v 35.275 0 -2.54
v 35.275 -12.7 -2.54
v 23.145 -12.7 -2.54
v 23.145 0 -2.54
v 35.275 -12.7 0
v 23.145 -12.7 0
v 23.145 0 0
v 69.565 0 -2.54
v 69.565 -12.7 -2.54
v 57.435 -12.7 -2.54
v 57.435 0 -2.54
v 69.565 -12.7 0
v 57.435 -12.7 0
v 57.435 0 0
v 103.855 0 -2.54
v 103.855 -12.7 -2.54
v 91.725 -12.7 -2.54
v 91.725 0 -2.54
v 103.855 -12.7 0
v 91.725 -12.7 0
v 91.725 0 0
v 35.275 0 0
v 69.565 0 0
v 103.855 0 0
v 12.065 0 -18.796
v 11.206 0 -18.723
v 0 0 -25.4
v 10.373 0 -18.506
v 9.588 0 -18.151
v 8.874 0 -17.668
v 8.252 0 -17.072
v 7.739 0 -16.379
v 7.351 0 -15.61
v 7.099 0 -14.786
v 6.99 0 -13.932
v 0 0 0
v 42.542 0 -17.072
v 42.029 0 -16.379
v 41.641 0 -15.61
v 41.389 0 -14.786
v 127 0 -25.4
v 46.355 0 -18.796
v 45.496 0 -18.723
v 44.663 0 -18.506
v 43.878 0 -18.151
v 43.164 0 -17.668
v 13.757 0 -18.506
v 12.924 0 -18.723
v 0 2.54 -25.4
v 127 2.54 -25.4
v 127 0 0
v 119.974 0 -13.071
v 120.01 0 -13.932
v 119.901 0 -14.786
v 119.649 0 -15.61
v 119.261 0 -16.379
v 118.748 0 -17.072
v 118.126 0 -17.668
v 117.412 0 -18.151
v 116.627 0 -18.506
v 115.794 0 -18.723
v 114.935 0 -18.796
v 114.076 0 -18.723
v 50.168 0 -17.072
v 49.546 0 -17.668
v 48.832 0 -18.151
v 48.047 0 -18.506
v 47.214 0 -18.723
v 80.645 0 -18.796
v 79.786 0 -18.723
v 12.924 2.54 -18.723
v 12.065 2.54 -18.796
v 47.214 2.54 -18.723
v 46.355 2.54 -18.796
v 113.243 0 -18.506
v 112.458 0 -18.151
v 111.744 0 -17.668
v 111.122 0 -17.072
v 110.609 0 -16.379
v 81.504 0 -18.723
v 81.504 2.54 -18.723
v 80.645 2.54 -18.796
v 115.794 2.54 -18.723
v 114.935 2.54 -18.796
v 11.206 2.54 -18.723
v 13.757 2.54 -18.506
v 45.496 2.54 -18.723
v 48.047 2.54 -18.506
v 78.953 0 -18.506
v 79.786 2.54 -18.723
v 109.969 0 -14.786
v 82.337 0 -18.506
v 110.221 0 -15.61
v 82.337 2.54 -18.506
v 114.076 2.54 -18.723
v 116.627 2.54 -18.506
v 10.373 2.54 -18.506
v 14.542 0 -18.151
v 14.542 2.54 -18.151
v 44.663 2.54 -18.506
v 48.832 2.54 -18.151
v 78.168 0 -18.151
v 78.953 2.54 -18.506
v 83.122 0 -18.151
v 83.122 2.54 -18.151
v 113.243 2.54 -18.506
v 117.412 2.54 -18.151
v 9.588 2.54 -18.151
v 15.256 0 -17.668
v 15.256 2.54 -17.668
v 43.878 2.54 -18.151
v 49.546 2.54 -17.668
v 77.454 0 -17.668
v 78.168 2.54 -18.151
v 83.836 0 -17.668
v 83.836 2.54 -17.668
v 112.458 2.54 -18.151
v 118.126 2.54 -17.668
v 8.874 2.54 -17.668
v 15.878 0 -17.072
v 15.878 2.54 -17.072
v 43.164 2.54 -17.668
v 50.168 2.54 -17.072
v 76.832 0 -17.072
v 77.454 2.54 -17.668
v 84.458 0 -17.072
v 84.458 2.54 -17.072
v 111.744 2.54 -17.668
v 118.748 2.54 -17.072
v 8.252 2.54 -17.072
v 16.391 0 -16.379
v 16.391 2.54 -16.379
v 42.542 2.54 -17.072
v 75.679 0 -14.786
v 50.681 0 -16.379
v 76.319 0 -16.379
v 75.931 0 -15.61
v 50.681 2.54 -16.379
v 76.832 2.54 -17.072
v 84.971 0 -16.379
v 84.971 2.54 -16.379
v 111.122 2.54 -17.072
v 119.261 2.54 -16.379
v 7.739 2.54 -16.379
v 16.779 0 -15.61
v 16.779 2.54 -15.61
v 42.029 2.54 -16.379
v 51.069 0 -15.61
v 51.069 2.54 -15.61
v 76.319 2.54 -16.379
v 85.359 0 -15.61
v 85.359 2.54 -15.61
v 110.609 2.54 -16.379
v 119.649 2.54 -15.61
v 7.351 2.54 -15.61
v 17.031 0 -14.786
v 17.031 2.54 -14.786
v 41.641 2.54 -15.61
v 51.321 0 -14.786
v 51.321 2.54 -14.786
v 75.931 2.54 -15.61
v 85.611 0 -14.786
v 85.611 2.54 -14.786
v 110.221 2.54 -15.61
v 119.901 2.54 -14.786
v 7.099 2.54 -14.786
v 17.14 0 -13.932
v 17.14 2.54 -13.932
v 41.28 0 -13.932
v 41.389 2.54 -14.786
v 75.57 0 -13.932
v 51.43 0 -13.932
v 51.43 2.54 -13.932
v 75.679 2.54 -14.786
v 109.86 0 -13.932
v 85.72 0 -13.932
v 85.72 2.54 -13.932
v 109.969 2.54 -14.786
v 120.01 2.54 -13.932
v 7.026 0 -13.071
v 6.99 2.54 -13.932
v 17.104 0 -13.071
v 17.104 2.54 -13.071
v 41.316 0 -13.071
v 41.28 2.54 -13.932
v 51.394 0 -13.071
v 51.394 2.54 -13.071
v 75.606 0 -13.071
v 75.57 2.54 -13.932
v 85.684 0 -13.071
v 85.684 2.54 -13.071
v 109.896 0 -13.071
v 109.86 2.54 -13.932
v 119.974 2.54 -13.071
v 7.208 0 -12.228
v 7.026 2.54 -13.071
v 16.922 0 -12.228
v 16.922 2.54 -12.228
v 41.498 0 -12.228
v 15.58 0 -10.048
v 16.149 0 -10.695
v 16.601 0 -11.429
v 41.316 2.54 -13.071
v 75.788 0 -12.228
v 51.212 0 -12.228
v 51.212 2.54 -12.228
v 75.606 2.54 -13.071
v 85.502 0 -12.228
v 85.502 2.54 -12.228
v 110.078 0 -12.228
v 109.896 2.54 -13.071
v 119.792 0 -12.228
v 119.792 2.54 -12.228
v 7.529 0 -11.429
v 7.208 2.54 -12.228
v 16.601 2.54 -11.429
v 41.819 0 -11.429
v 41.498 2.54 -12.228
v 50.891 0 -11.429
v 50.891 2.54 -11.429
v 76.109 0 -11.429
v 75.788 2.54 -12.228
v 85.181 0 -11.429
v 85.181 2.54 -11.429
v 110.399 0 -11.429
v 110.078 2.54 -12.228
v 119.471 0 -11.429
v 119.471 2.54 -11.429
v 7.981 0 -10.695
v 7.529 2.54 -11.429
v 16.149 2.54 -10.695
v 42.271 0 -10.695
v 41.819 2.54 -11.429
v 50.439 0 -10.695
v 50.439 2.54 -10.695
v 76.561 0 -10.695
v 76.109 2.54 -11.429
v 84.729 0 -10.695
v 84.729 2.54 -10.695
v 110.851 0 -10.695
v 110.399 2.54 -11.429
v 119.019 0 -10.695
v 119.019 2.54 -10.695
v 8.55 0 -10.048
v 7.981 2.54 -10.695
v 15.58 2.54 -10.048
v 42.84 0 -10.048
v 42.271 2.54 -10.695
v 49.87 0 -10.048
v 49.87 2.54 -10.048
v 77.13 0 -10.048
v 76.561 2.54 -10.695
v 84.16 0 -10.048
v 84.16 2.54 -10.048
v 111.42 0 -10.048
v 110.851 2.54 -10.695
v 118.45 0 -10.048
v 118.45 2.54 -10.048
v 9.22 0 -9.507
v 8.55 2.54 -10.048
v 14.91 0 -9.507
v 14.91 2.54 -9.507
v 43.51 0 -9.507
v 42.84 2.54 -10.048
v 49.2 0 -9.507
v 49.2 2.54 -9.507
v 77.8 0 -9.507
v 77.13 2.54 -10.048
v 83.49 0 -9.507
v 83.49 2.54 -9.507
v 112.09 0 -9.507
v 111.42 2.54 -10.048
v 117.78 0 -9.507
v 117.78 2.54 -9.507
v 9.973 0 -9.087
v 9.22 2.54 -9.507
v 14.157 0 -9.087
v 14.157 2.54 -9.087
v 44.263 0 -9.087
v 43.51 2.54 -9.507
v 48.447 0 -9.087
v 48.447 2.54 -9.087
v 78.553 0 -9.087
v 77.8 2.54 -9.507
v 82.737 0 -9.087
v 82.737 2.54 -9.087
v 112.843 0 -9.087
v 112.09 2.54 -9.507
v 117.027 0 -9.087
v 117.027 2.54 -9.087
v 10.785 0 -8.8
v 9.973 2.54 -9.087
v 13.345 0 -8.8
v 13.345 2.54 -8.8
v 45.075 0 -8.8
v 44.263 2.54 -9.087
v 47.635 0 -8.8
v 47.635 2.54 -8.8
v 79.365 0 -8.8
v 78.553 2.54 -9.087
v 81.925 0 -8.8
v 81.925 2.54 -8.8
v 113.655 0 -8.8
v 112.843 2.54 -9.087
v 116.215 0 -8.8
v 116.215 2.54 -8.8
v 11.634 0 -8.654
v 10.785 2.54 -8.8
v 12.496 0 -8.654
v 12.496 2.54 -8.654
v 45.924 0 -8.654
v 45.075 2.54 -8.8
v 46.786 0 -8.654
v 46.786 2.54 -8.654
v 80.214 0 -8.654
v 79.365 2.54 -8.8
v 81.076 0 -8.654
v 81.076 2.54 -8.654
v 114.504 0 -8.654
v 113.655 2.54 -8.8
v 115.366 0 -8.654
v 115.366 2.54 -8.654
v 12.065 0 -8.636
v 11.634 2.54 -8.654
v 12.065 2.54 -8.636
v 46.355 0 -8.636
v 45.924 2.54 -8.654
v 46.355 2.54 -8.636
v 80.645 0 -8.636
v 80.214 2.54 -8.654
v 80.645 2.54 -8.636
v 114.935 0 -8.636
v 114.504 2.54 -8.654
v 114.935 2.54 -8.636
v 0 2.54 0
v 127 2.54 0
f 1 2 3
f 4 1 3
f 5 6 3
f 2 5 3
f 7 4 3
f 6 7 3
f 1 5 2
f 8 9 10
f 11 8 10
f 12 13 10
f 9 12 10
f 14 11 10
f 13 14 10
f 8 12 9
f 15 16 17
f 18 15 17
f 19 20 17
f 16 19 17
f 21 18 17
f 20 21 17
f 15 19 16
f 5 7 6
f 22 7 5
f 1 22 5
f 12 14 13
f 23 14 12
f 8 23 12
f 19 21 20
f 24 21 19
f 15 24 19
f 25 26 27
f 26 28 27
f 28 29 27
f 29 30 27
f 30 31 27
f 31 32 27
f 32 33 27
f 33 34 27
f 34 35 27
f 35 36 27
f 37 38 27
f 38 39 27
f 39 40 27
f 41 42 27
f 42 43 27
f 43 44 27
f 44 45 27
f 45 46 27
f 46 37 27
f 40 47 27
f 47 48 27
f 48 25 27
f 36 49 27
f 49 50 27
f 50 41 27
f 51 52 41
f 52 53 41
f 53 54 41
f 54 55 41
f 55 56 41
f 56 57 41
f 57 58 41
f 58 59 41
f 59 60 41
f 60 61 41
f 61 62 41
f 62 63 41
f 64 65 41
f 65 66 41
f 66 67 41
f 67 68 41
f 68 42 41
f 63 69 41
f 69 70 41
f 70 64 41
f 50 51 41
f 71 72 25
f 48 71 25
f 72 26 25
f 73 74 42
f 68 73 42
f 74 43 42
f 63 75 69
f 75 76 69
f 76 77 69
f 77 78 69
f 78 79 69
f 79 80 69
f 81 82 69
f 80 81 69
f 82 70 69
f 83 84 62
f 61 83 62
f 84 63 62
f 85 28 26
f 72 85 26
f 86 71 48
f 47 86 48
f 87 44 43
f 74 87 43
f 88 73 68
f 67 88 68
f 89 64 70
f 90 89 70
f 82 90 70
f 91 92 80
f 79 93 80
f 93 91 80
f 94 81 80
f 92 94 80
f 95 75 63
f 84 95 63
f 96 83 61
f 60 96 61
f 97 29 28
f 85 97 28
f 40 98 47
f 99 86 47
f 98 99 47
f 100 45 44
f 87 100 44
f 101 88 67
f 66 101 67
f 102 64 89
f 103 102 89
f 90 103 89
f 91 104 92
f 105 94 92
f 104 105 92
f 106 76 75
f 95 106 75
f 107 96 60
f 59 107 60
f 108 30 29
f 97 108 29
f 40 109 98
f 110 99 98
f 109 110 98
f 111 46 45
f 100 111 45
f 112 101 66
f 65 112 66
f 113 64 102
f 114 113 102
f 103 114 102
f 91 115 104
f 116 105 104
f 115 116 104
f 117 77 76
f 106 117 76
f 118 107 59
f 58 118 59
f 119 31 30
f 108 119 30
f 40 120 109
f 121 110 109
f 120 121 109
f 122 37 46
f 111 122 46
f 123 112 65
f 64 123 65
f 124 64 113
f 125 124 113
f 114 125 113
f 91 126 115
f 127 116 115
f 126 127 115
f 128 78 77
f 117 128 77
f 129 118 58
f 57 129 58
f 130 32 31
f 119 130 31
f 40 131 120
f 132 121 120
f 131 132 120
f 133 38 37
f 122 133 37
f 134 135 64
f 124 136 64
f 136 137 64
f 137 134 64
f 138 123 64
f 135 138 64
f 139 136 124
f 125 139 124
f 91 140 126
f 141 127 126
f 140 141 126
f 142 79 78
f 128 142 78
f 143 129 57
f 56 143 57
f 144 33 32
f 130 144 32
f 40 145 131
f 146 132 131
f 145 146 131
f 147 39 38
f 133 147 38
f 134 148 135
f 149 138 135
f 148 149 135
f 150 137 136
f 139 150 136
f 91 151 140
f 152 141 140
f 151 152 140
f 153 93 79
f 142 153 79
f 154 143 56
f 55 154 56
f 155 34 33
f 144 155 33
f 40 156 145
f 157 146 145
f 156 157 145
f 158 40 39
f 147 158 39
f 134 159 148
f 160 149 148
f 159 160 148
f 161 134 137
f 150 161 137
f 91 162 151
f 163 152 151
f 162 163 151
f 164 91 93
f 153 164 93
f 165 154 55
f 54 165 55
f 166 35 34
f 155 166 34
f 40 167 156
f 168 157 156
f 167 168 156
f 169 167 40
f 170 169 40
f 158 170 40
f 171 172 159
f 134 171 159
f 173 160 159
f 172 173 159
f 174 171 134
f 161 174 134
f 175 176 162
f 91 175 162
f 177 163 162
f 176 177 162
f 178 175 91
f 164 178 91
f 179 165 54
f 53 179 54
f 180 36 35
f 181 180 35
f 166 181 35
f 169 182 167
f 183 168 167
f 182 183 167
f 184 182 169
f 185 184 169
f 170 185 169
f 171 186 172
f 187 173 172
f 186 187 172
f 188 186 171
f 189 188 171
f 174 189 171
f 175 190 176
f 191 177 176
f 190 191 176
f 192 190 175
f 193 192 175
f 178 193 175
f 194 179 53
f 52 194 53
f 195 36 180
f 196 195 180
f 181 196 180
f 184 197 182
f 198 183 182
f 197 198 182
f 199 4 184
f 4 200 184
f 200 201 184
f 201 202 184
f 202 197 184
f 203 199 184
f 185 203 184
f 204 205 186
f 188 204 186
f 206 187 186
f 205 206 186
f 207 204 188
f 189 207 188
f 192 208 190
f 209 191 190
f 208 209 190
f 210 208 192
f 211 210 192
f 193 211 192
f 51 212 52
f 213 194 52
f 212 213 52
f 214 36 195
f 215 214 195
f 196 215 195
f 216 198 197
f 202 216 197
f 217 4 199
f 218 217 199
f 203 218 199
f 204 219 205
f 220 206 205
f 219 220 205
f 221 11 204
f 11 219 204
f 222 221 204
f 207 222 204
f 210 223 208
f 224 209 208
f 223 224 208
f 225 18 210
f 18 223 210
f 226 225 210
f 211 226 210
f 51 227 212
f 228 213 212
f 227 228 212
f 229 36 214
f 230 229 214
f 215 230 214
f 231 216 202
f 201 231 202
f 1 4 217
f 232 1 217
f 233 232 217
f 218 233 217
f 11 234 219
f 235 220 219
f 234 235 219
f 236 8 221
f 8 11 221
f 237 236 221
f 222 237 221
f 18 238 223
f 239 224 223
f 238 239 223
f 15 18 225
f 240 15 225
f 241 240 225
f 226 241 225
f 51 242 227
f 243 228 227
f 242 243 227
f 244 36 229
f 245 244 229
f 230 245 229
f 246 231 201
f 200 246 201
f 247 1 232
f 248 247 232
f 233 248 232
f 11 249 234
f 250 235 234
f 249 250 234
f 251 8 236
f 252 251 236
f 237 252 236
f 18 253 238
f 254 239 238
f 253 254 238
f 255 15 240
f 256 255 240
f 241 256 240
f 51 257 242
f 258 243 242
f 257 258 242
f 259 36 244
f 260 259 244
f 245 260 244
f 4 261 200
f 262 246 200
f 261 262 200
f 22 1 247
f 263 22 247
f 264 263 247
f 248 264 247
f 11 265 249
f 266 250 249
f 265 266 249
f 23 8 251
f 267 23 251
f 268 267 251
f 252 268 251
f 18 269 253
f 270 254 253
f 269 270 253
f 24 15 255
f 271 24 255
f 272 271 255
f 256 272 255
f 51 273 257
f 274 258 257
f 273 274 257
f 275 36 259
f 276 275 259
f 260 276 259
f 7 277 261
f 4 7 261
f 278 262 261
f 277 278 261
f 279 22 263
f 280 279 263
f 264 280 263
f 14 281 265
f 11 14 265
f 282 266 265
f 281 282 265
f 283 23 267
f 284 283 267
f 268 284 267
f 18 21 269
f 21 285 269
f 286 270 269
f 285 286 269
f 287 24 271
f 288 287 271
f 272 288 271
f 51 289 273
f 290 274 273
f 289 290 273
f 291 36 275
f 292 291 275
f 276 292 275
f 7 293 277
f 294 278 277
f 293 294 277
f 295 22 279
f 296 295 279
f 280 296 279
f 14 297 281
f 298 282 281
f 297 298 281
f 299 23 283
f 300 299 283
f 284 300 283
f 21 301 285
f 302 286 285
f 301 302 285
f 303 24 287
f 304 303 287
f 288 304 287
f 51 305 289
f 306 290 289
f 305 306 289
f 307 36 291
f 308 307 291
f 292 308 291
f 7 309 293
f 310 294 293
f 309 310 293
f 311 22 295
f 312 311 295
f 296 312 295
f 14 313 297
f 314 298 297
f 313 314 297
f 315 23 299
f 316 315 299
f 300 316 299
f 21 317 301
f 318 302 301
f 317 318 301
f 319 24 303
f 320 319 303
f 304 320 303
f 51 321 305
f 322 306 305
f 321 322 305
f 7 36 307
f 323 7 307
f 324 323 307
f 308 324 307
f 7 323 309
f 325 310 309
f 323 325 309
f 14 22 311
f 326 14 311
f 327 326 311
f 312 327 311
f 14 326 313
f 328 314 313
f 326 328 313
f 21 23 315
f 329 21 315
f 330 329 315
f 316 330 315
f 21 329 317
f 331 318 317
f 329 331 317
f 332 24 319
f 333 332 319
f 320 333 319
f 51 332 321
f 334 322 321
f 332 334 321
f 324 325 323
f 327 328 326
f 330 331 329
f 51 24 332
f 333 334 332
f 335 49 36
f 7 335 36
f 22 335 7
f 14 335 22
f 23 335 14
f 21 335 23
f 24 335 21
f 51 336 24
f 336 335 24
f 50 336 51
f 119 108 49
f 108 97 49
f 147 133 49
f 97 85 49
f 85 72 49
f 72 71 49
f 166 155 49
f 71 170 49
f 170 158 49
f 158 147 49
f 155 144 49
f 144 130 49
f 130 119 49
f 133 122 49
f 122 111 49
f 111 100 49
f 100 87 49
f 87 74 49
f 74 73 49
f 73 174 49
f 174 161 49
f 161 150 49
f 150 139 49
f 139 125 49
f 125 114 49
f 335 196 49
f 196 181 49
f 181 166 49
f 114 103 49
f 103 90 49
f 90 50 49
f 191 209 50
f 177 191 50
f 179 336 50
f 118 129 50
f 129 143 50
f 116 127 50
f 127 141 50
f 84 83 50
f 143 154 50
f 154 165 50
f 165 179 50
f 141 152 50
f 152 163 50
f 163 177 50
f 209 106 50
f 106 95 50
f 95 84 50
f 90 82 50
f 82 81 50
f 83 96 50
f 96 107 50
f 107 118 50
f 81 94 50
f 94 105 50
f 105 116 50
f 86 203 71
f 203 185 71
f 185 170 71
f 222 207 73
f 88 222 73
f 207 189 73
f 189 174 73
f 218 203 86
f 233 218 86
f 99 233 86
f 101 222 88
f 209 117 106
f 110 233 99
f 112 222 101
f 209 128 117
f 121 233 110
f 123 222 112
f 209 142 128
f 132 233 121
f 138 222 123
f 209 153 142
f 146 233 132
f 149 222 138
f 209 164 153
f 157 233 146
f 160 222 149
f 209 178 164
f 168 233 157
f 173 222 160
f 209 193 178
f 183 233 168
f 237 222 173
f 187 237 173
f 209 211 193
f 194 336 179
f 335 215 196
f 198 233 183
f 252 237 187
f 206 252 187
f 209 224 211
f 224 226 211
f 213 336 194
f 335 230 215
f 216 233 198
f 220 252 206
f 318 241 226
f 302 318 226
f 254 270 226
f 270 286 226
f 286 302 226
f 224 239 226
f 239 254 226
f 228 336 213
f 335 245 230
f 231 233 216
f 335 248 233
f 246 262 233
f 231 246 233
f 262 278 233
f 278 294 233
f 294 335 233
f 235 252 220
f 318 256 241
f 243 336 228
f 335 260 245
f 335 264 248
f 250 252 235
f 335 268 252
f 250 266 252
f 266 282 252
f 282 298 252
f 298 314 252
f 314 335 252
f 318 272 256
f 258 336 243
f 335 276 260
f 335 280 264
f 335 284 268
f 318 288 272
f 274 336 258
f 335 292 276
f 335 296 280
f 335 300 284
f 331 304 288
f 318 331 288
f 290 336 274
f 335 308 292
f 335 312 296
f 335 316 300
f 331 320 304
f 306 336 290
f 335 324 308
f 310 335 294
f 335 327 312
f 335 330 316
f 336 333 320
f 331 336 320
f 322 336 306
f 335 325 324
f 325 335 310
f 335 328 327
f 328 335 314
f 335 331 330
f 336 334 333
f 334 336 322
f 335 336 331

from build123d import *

# Parameters (mm, degrees)
SKETCH1_W           = 127
SKETCH1_H           = 25.4
SKETCH1_R           = 5.08
BOSS_EXTRUDE1_DEPTH = 2.54
SKETCH2_W           = 127
SKETCH2_H           = 2.54
BOSS_EXTRUDE2_DEPTH = 12.7
SKETCH4_W           = 23.145
SKETCH4_H           = 12.7
SKETCH4_W_2         = 22.16
CUT_EXTRUDE1_DEPTH  = 2.54


with BuildPart() as part:
    # Sketch1 → Boss-Extrude1 (new body)
    with BuildSketch(Plane(origin=(0, 0, 0), x_dir=(1, 0, 0), z_dir=(0, 1, 0))):
        with Locations((63.5, 12.7)):
            Rectangle(SKETCH1_W, SKETCH1_H)
        with Locations(Location((12.065, 13.716, 0), (0, 0, 270))):
            Circle(SKETCH1_R, mode=Mode.SUBTRACT)
        with Locations(Location((46.355, 13.716, 0), (0, 0, 270))):
            Circle(SKETCH1_R, mode=Mode.SUBTRACT)
        with Locations(Location((80.645, 13.716, 0), (0, 0, 270))):
            Circle(SKETCH1_R, mode=Mode.SUBTRACT)
        with Locations(Location((114.935, 13.716, 0), (0, 0, 270))):
            Circle(SKETCH1_R, mode=Mode.SUBTRACT)
    extrude(amount=BOSS_EXTRUDE1_DEPTH)

    # Sketch2 → Boss-Extrude2 (add)
    with BuildSketch(Plane.XZ):
        with Locations((63.5, -1.27)):
            Rectangle(SKETCH2_W, SKETCH2_H)
    extrude(amount=BOSS_EXTRUDE2_DEPTH)

    # Sketch4 → Cut-Extrude1 (cut)
    with BuildSketch(Plane(origin=(0, 0, -2.54), x_dir=(-1, 0, 0), z_dir=(0, 0, -1))):
        with Locations((-115.4275, -6.35)):
            Rectangle(SKETCH4_W, SKETCH4_H)
        with Locations((-80.645, -6.35)):
            Rectangle(SKETCH4_W_2, SKETCH4_H)
        with Locations((-46.355, -6.35)):
            Rectangle(SKETCH4_W_2, SKETCH4_H)
        with Locations((-11.5725, -6.35)):
            Rectangle(SKETCH4_W, SKETCH4_H)
    extrude(amount=-CUT_EXTRUDE1_DEPTH, mode=Mode.SUBTRACT)


solid = part.part
